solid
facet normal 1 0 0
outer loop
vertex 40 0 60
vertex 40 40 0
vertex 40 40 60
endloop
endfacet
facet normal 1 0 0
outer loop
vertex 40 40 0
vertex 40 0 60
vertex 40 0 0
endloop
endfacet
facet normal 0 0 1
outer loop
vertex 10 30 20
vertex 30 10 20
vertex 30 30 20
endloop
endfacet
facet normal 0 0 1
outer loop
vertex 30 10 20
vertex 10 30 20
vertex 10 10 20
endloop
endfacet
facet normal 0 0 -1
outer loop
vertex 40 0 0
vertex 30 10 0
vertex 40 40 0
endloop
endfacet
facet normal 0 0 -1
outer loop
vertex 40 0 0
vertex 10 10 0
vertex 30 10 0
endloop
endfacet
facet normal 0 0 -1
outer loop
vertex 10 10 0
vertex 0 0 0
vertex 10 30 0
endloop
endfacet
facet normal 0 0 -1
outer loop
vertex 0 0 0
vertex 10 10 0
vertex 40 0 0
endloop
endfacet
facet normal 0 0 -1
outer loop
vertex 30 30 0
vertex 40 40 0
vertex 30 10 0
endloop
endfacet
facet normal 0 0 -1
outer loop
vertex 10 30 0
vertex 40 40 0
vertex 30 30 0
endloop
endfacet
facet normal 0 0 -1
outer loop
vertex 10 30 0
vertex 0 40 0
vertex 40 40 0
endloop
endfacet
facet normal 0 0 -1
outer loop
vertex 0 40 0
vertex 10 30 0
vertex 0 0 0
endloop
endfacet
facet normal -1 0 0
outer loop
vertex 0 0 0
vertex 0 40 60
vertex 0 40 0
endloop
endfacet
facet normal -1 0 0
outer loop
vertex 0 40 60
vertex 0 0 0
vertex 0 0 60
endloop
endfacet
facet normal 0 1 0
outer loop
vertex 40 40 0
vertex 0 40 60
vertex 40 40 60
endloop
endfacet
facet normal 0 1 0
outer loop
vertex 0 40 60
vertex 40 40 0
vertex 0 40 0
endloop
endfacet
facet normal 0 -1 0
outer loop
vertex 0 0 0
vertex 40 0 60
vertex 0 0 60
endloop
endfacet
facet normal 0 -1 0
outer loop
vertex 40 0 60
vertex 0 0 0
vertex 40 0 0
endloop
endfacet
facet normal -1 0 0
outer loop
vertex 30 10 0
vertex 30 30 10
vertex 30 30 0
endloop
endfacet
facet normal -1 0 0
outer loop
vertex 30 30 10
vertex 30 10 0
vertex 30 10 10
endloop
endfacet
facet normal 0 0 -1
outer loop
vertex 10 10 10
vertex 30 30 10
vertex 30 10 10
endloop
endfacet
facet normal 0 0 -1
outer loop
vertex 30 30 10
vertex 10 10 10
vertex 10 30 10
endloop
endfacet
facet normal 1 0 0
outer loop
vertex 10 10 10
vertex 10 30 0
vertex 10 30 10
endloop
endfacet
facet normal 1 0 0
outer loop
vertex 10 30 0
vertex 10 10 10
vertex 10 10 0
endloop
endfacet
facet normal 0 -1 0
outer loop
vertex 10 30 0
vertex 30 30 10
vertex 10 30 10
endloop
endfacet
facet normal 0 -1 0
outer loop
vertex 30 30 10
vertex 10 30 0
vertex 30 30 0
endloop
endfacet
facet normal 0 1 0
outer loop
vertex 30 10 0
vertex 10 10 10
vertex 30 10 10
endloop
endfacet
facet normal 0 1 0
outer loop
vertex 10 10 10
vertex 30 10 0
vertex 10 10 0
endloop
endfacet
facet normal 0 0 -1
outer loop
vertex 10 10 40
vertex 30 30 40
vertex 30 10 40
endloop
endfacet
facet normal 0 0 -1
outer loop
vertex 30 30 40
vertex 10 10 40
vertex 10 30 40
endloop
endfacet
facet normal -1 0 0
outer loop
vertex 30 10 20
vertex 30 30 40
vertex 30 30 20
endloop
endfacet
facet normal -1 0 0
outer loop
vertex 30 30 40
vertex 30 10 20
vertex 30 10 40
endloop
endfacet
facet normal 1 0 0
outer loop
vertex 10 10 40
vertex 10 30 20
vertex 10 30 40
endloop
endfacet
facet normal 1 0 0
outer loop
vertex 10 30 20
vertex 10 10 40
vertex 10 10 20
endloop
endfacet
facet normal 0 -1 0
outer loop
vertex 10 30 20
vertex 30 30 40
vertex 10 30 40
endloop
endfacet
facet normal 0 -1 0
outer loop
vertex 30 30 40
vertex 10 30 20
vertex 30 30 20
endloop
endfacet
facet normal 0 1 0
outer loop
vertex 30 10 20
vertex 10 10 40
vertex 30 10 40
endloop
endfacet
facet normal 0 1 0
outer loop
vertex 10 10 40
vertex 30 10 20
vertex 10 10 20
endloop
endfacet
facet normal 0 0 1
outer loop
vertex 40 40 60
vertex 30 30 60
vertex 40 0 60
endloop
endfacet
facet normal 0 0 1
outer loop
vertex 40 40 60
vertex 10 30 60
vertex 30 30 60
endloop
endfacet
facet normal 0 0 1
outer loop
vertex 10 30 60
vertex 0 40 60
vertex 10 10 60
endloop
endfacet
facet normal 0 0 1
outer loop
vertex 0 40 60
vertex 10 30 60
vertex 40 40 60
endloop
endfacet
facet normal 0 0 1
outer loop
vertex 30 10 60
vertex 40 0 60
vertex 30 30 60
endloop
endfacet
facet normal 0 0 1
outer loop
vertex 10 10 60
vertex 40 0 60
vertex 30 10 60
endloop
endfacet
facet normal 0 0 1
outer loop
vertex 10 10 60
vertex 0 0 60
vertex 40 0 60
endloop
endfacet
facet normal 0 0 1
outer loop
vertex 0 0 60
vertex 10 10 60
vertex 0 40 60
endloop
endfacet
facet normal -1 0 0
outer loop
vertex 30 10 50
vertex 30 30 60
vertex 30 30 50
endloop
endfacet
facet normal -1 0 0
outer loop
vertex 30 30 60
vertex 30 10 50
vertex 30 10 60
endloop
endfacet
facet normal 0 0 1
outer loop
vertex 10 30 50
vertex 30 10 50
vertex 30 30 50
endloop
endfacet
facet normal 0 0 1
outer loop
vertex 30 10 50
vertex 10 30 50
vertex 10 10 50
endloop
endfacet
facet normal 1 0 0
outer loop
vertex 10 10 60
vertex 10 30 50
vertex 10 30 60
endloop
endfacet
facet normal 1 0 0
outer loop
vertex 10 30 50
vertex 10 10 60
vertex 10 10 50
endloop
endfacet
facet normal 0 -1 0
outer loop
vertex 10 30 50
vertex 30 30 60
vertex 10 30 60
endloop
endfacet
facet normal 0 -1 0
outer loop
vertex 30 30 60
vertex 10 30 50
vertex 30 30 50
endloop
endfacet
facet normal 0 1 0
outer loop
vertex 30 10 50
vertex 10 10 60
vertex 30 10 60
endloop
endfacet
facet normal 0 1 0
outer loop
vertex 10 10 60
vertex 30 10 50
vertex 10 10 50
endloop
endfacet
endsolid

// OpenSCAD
// Base block
module base_block() {
    difference() {
        cube([40, 40, 20]); // Main block
        translate([10, 10, 0]) cube([20, 20, 10]); // Step cutout
    }
}

// Middle block
module middle_block() {
    difference() {
        cube([40, 40, 20]); // Main block
        translate([10, 10, 0]) cube([20, 20, 10]); // Bottom step cutout
        translate([10, 10, 10]) cube([20, 20, 10]); // Top step cutout
    }
}

// Top block
module top_block() {
    difference() {
        cube([40, 40, 20]); // Main block
        translate([10, 10, 10]) cube([20, 20, 10]); // Step cutout
    }
}

// Assemble the model
module flexible_coupling() {
    translate([0, 0, 0]) base_block(); // Layer 3: Base block
    translate([0, 0, 20]) middle_block(); // Layer 2: Middle block
    translate([0, 0, 40]) top_block(); // Layer 1: Top block
}

// Render the model
flexible_coupling();
